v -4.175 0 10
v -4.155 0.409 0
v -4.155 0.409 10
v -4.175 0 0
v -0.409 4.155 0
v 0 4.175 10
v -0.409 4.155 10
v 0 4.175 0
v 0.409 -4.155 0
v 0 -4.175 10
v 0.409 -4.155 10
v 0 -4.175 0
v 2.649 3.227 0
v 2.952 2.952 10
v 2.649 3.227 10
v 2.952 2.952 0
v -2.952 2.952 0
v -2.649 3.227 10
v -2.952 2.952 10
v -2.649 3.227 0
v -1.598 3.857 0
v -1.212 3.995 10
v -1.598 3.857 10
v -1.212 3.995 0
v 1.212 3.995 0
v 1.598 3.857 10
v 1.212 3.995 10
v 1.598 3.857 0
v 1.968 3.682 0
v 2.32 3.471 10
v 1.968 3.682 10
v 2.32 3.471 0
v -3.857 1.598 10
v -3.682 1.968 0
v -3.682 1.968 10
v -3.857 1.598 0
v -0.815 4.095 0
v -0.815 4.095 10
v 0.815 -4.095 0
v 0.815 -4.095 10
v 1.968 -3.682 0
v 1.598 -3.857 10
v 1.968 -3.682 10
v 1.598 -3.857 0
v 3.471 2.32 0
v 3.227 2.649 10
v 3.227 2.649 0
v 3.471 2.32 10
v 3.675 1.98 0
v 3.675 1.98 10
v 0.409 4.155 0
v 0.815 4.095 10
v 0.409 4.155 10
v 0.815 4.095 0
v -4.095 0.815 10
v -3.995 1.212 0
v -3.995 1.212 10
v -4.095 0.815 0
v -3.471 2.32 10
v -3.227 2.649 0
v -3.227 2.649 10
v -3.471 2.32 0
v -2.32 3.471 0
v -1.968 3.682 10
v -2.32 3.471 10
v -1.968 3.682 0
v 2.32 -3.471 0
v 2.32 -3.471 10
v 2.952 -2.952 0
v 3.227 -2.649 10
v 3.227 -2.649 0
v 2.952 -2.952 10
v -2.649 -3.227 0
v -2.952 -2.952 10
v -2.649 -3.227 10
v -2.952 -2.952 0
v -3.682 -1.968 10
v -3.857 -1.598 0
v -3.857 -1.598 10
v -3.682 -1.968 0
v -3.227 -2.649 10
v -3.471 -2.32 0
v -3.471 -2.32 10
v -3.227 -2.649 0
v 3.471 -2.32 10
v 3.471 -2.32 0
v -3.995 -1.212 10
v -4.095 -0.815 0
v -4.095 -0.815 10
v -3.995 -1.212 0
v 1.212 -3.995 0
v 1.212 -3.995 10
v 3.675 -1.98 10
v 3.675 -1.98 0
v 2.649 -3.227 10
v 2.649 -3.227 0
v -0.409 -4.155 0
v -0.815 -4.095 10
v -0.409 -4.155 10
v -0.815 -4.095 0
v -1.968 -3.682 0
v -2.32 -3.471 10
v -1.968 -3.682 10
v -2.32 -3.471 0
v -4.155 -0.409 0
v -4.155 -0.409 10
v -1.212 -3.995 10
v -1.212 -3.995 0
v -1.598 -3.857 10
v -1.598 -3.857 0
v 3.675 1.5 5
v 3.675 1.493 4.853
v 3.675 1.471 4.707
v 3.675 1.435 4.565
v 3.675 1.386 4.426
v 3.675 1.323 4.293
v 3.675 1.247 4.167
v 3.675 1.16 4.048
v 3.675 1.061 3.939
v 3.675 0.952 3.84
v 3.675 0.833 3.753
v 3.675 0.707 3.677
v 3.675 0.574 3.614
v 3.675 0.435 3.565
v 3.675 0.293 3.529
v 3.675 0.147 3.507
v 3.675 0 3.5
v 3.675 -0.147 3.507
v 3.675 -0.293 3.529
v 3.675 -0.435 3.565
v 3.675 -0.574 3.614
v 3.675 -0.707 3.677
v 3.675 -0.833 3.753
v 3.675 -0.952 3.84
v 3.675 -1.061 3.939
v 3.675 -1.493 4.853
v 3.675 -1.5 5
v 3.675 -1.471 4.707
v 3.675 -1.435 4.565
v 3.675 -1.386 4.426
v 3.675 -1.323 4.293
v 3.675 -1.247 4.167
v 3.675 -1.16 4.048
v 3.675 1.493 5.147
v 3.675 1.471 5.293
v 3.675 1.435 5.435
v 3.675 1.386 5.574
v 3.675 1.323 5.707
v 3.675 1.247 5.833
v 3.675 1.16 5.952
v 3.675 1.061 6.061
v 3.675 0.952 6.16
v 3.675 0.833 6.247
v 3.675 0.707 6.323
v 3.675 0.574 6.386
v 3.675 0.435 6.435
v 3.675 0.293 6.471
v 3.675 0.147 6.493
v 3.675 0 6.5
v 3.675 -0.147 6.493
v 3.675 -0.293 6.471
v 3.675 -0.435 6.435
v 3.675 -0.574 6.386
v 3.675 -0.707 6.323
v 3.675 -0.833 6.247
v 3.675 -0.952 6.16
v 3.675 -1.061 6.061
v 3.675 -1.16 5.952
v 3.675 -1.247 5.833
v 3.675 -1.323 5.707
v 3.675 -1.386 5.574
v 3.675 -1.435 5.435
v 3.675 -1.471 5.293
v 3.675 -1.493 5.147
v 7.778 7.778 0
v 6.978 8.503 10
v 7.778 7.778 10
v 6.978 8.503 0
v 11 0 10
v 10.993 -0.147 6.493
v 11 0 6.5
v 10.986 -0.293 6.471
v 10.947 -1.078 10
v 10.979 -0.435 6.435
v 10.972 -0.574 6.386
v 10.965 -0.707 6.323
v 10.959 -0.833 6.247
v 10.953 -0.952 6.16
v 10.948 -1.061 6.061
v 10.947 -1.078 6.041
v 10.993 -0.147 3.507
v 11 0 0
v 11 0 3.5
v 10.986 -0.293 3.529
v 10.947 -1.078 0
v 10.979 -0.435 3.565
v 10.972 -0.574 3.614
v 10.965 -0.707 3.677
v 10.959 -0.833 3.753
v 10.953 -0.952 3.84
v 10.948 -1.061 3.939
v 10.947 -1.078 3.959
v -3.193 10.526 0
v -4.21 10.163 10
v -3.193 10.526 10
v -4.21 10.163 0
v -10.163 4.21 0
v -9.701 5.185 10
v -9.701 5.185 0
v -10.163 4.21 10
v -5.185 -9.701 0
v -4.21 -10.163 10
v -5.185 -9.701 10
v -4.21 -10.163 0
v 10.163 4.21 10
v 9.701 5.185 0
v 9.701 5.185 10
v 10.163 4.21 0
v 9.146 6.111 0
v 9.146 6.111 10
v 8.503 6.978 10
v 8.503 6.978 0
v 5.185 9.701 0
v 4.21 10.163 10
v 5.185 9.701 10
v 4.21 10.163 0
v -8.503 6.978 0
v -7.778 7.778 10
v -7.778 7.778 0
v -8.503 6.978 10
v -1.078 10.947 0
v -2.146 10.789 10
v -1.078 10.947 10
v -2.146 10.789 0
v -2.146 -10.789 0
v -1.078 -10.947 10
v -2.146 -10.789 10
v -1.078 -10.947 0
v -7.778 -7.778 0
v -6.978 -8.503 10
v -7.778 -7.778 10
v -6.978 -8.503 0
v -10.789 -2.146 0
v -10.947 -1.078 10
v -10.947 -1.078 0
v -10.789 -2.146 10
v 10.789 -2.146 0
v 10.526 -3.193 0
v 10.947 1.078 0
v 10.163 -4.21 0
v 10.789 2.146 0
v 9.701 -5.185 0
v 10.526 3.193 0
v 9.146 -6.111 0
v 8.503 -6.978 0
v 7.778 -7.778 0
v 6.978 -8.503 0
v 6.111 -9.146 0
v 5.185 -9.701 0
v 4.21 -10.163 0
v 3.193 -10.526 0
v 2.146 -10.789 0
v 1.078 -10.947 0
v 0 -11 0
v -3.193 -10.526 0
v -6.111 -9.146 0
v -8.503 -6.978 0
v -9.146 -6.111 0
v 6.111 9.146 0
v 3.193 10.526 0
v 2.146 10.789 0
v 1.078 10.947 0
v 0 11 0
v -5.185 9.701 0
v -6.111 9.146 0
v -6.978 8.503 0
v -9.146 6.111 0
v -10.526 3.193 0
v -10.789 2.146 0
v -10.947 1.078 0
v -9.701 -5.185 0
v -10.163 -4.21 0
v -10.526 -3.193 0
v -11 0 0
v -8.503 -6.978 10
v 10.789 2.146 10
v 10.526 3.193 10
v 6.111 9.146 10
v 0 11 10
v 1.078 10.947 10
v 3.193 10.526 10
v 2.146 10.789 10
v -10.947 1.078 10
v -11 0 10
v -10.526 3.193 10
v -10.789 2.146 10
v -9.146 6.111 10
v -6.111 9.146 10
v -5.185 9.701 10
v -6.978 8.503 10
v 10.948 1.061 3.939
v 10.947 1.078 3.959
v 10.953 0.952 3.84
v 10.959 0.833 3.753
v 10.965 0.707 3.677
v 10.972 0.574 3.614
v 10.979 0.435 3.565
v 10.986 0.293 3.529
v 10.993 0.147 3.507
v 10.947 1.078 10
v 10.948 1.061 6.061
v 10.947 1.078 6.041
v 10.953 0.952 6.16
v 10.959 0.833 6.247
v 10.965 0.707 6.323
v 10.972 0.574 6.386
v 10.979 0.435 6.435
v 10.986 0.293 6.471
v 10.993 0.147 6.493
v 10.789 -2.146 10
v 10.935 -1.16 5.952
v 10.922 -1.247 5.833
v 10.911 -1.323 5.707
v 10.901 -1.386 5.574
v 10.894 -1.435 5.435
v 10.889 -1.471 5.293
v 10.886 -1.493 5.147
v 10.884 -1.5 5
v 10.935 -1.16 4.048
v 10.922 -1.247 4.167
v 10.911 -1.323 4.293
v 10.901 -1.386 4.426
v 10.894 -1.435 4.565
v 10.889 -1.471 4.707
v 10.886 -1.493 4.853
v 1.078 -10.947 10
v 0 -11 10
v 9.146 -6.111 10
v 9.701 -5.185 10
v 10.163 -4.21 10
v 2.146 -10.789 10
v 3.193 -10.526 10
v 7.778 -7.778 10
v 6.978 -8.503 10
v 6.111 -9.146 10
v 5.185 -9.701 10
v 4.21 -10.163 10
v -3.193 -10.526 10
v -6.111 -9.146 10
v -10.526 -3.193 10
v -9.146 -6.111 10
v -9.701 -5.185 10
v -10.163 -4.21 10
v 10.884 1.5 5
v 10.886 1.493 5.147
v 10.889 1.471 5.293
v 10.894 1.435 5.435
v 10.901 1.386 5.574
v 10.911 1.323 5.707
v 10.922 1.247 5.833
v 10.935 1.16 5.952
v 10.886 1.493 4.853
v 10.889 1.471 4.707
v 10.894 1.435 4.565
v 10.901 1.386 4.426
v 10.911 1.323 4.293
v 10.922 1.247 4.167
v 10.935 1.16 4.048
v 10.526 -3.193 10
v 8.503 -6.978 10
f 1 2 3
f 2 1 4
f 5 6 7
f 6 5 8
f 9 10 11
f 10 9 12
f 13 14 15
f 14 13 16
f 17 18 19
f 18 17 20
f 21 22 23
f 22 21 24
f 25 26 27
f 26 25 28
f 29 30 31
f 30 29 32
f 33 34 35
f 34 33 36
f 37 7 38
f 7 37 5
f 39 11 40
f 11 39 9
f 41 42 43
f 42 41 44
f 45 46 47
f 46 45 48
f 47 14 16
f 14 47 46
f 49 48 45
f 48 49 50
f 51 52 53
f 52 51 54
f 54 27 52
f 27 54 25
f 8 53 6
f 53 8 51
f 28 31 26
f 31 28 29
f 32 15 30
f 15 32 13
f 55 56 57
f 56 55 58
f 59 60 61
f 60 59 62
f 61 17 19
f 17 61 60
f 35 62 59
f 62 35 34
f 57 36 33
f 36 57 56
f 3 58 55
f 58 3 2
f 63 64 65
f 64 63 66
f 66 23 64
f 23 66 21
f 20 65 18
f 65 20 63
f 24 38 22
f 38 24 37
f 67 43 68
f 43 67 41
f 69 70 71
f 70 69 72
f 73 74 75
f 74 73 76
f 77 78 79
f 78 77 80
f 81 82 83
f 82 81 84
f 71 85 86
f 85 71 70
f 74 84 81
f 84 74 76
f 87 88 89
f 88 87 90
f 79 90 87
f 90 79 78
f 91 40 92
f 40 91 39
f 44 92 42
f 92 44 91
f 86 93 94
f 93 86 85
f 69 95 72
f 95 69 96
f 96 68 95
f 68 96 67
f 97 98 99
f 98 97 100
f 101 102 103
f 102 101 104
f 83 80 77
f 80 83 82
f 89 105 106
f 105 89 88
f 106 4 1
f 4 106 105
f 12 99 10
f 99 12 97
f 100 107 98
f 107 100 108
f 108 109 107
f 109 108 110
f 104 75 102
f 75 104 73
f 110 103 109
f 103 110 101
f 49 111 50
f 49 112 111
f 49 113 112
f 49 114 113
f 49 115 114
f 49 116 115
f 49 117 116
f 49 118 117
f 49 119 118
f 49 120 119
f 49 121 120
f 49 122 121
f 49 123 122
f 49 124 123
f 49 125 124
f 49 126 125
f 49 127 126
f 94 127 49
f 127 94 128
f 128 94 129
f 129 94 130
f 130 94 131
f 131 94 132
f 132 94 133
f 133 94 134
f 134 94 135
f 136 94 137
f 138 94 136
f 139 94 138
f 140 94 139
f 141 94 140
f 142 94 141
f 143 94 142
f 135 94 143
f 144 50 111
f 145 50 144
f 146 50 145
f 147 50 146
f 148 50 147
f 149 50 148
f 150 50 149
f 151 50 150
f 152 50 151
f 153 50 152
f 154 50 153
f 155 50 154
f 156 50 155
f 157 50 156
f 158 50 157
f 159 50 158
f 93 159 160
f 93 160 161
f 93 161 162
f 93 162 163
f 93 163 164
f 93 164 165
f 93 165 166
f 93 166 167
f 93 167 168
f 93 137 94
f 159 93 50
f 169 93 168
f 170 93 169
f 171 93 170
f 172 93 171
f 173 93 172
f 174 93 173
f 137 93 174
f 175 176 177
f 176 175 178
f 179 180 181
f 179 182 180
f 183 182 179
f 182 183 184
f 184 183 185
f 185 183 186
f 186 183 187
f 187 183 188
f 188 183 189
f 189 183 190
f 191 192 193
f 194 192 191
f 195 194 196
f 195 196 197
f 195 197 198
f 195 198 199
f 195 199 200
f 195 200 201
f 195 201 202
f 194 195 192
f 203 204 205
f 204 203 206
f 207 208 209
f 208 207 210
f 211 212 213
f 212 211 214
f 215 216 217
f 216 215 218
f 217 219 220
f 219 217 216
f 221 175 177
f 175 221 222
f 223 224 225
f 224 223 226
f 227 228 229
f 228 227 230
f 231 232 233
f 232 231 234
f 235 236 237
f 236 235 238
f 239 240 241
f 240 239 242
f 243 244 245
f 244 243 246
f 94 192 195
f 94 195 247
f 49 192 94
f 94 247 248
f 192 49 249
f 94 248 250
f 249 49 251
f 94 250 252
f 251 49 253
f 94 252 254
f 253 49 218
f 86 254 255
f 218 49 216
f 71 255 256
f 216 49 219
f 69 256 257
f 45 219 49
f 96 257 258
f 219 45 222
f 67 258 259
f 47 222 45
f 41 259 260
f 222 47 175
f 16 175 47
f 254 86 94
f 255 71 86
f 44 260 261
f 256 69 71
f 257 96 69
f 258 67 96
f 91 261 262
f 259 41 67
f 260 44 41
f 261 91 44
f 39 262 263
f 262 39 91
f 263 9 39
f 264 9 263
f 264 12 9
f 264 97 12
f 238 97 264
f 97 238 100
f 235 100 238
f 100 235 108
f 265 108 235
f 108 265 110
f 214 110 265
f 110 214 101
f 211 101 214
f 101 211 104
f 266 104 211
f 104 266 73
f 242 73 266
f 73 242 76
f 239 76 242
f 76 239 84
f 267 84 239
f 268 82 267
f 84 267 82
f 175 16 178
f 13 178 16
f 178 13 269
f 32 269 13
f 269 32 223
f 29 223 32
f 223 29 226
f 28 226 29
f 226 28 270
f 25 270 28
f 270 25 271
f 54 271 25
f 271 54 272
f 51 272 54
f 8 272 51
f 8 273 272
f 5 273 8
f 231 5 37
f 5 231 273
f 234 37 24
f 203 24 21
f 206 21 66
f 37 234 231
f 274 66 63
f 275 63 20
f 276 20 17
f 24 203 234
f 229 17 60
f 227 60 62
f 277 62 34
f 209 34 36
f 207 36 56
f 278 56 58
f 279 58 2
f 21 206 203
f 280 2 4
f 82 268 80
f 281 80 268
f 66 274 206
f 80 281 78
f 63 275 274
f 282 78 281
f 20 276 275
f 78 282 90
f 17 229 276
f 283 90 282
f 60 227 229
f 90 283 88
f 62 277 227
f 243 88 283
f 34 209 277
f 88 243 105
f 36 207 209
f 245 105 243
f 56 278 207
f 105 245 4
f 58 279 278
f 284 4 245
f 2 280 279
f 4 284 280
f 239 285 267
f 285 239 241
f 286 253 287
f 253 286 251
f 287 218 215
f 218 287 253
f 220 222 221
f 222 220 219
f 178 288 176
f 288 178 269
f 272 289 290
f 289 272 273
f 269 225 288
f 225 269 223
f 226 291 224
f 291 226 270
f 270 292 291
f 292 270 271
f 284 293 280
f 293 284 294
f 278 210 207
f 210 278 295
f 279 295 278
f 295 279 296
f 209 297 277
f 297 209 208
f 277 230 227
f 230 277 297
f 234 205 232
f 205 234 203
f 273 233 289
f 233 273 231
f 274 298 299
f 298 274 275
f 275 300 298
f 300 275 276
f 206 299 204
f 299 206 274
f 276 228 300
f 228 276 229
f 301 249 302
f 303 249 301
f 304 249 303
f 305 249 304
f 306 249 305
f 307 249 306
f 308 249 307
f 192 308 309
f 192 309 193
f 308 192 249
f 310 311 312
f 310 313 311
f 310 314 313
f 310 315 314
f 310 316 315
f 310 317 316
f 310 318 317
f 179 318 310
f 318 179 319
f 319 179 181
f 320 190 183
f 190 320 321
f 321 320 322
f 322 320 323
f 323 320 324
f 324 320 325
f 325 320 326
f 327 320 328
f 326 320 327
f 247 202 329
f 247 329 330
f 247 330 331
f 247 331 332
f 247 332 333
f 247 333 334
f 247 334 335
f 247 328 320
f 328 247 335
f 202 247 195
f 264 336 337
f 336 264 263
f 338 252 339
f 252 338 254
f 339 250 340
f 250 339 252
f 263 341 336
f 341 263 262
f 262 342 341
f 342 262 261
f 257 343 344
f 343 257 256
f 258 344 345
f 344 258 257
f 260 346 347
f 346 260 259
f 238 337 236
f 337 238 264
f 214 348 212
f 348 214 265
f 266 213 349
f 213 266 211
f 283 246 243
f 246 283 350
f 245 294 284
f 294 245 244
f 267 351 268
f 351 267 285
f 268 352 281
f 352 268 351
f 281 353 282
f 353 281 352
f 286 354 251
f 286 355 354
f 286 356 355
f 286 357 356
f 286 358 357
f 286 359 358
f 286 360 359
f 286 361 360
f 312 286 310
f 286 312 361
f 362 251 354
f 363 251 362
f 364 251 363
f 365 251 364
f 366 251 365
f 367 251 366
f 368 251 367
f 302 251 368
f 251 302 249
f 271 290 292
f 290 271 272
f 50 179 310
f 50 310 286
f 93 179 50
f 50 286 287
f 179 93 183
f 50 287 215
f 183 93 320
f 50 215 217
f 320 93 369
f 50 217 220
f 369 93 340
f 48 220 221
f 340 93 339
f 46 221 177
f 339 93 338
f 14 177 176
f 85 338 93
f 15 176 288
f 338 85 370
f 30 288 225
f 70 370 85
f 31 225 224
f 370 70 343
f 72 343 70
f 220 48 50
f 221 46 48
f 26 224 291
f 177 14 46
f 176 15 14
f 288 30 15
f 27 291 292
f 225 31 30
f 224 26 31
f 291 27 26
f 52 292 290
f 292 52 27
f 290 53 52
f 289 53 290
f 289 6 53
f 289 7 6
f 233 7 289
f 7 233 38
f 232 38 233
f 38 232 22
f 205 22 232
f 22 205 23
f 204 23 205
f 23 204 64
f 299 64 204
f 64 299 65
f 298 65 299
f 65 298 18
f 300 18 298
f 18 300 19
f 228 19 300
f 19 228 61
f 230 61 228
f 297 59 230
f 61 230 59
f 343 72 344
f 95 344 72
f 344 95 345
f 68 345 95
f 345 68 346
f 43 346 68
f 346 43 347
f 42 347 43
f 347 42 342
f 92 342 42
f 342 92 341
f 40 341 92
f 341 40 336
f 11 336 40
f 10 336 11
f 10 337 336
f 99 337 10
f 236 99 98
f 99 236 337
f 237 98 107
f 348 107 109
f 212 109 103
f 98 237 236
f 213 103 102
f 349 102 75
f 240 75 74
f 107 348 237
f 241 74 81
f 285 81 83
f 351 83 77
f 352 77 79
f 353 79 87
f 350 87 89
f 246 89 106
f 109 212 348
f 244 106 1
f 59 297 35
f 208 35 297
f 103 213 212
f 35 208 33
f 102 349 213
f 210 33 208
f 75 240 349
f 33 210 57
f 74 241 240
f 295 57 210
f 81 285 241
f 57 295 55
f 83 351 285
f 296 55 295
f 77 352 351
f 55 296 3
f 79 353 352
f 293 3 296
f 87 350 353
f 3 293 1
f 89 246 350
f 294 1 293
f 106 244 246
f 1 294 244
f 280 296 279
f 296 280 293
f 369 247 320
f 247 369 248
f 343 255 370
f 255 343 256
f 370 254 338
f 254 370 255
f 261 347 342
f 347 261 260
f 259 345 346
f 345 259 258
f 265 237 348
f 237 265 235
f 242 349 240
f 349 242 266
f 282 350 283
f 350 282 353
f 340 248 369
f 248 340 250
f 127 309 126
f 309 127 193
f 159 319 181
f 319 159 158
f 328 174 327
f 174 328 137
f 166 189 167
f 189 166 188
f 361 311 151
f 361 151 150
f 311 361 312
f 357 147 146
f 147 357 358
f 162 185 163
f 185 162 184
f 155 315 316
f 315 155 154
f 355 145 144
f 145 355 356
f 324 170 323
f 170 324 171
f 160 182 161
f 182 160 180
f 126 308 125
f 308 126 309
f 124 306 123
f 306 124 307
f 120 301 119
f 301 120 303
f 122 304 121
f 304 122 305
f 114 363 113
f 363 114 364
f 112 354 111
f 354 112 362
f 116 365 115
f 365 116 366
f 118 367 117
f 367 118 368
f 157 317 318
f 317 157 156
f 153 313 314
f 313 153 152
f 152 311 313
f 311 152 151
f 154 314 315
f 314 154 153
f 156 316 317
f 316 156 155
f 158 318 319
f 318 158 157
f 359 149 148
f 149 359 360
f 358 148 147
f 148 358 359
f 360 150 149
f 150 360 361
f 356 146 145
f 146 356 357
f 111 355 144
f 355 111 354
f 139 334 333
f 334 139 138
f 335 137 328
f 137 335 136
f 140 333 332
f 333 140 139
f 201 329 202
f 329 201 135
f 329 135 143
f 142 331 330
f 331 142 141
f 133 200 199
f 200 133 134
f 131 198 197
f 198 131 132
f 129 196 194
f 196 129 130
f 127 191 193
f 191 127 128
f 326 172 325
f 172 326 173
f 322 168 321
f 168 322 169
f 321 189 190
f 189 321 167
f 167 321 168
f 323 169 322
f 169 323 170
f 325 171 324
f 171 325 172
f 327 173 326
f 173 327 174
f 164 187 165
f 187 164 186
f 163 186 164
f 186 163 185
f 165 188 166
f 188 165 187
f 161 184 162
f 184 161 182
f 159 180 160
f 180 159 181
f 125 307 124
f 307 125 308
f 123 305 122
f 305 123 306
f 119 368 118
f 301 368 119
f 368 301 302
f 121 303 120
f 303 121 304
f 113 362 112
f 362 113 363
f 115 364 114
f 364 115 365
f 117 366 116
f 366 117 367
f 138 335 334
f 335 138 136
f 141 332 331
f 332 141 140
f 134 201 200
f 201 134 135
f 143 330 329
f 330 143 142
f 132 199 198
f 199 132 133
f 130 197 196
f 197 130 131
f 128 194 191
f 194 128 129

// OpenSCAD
// file: parameters.scad
// =============================================================================
// Gen-BO — nightly 2026-10-07 (physics_scorer, honest magpylib watts)
// Flush seat + wider copper + tight assists: the magnets sit on the steel in 5.00 mm through-pockets (carrier = magnet height, recess 0 instead of 0.10 mm), so the magnet faces are 0.2 mm closer while still exactly 0.50 mm from the wound envelope; the bobbin lip beyond the copper is trimmed 1.0 → 0.8 mm (still the 0.8 mm wall minimum, stator web still 1.2 mm), which widens each copper sector by ~0.6° on 28–70 mm × 18.0 mm-build bobbins; and the diametric Ø5 assists are pulled in to R43/50/57 (±7 mm) where they add most flux under the copper. Same Ø134 × 4.76 mm steel discs as Gen-BL.
// Clocking 0 deg (magnets N facing S) + D-flat keyed bore + index notch + flip-symmetric hole map.
// Windable 2-piece bobbin; turns = physics_scorer turns_fit; copper only between flanges.
// Steel back-iron: 2× Ø134 × 4.76 mm (3/16") mild-steel discs (steel_backiron_disc.dxf); magnets sit ON the steel
// (through-pockets) -> score with --back-iron.
// =============================================================================
topology            = "dual_rotor";

// --- Wire / winding (physics_scorer winding-fit) -------------------------------
wire_awg            = 26;
wire_od             = 0.45;     // insulated OD mm (bare 0.405)
fill_realistic      = 0.65;     // insulated-wire area / window (DENSE layered wind with a jig; scorer cap 0.65)
turns               = 595;       // = physics_scorer turns_fit (do NOT raise)
coil_former_type    = "bobbin";
coil_core_inset     = 18.00;     // radial copper build: hub = copper boundary inset by this
wind_build_axial    = 0.0;      // nothing proud of the flanges
wind_build_radial   = 0.0;

// --- Bobbin (base + lid) ---------------------------------------------------------
coil_id_r           = 28.00;    // copper boundary sector
coil_od_r           = 70.00;
span_deg            = 53.24;    // = pitch - 2*asin((wall+0.85)/coil_id_r) -> >=1.2 mm stator web
former_web          = 8.10;     // copper height between flanges (TALL copper: steel keeps Bz up)
flange_t            = 0.80;     // >= 0.8 mm FDM wall rule (tall winds push on the flanges)
wall                = 0.80;     // flange lip beyond copper
former_bare_h       = former_web + 2 * flange_t;
coil_envelope_h     = former_bare_h + 2 * wind_build_axial;
tab_w               = 7.0;
tab_len             = 7.0;
tab_h               = former_bare_h / 2;
pin_d               = 1.9;      // 1.75 mm filament locating pin
coil_mount_r        = coil_od_r + 0.2 + 4.0;
lead_y              = 1.6;
lead_slot_w         = 0.9;
lead_groove_d       = 0.6;

// --- Gap -------------------------------------------------------------------------
run_clear           = 0.50;     // rotor face -> flange
gap_spacer_h        = run_clear + wind_build_axial;
m2m                 = coil_envelope_h + 2 * run_clear;   // rotor face to rotor face (= gap_sleeve length)

// --- Stator ----------------------------------------------------------------------
coil_stations       = 6;
bay_clear           = 0.25;
stator_thick        = former_bare_h;                        // bobbins flush both faces
stator_od           = 158;
shaft_clear_stator  = 14.0;     // stator is static; gap sleeve OD 12 spins inside

// --- Rotor(s) --------------------------------------------------------------------
magnet_Br           = 1.43;     // N52
magnet_d_large      = 20.0;
magnet_h_large      = 5.0;      // one O20x5 per pocket
magnet_h_small      = 5.0;      // one O5x5 per pocket
halbach_magnetisation = "diametric"; // O5x5 assist magnets MUST be DIAMETRICALLY magnetised (tangential)
rotor_b_same_axis   = true;     // same-index magnets share one axis: N faces S across the gap
large_pocket_d      = 20.3;
small_pocket_d      = 5.3;
pocket_h            = 5.00;     // THROUGH the carrier: magnet back face sits on the steel disc (FLUSH seat: carrier = magnet height, magnet face level with the rotor face)
large_n             = 8;
R_large             = 50.0;
R_small_inner       = 43.0;
R_small_mid         = 50.0;
R_small_outer       = 57.0;
small_r_list        = [R_small_inner, R_small_mid, R_small_outer];   // O5 pockets between poles
carrier_od          = 134.0;
carrier_thick       = pocket_h;
hub_h               = 12.0;     // > steel_t + insert: radial set-screw clears the steel
hub_od              = 24.0;     // slim hub so the M4 brace rods fit at R~18 inside the coil ring
hub_insert_d        = 4.0;      // M3 heat-set insert, radial, bears on the D-flat
rotor_b_offset_deg  = 0.0;      // CLOCKING: magnets directly opposite
shaft_key           = "dflat";
dflat_depth         = 0.5;      // 8 mm shaft with 0.5 mm flat (7.5 across flat)
index_notch_d       = 3.0;

// --- Steel back-iron (buyable laser-cut) -------------------------------------------
steel_t             = 4.76;      // mild steel thickness (image method ignores it; sized from steel_flux.py so the return path stays well below saturation)
steel_center_hole   = 26.0;     // slips over the rotor hub (OD 24)
steel_od            = carrier_od;   // steel disc OD = rotor carrier OD

// --- Modular MAX interface ----------------------------------------------------------
shaft_bore          = 8.35;
dflat_x             = 4.0 - dflat_depth + (shaft_bore - 8.0) / 2;
bearing_d           = 21.85;
bearing_h           = 7.2;
m3_clear            = 3.5;
bolt_r_inner        = 30.0;     // M3 steel-disc clamp bolts (inside the magnet ring)
bolt_n_inner        = 4;
bolt_inner_angles   = [0, 90, 180, 270];
bolt_r_outer        = 63.0;     // M3 steel-disc clamp bolts (outside the magnet ring)
bolt_outer_angles   = [45, 135, 225, 315];
flange_bolt_r       = 73.0;     // frame rods: OUTSIDE the rotor OD (rotors spin inside them)
flange_bolt_n       = 6;
flange_bolt_offset  = 30.00;    // between coil stations -> never cuts a lead groove/tab
brace_r             = 18.0;
brace_d             = 4.3;      // temporary M4 jack rods (assembly only)
brace_n             = 4;
brace_angles        = [45, 135, 225, 315];          // flip-symmetric

spacer_pad_od       = 14.0;
spacer_pad_id       = m3_clear;
endbell_od          = 158;
endbell_thick       = 8.0;
endbell_shaft_clear = 10.0;
collar_h            = 10.0;
standoff_od         = 9.0;
frame_standoff_h    = run_clear + carrier_thick + hub_h + collar_h + 2.0;
sleeve_od           = 12.0;
plate_max_mm        = 410;

$fn = 64;
// main file
// Gen-BO — shaft collar with D-flat bore (set screw bears on the flat); print x4
include <parameters.scad>;
$fn = 64;
// D-flat keyed bore: flat faces +X (angle 0 = magnet pocket 0 = index notch)
module dflat_bore(h) {
    intersection() {
        cylinder(d=shaft_bore, h=h);
        translate([-shaft_bore, -shaft_bore, 0]) cube([shaft_bore + dflat_x, 2*shaft_bore, h]);
    }
}

od = 22; h = collar_h; set_d = 3.0;
difference() {
    cylinder(d=od, h=h);
    translate([0, 0, -0.1]) dflat_bore(h + 0.2);
    translate([0, 0, h/2]) rotate([0, 90, 0]) cylinder(d=set_d, h=od);
}
